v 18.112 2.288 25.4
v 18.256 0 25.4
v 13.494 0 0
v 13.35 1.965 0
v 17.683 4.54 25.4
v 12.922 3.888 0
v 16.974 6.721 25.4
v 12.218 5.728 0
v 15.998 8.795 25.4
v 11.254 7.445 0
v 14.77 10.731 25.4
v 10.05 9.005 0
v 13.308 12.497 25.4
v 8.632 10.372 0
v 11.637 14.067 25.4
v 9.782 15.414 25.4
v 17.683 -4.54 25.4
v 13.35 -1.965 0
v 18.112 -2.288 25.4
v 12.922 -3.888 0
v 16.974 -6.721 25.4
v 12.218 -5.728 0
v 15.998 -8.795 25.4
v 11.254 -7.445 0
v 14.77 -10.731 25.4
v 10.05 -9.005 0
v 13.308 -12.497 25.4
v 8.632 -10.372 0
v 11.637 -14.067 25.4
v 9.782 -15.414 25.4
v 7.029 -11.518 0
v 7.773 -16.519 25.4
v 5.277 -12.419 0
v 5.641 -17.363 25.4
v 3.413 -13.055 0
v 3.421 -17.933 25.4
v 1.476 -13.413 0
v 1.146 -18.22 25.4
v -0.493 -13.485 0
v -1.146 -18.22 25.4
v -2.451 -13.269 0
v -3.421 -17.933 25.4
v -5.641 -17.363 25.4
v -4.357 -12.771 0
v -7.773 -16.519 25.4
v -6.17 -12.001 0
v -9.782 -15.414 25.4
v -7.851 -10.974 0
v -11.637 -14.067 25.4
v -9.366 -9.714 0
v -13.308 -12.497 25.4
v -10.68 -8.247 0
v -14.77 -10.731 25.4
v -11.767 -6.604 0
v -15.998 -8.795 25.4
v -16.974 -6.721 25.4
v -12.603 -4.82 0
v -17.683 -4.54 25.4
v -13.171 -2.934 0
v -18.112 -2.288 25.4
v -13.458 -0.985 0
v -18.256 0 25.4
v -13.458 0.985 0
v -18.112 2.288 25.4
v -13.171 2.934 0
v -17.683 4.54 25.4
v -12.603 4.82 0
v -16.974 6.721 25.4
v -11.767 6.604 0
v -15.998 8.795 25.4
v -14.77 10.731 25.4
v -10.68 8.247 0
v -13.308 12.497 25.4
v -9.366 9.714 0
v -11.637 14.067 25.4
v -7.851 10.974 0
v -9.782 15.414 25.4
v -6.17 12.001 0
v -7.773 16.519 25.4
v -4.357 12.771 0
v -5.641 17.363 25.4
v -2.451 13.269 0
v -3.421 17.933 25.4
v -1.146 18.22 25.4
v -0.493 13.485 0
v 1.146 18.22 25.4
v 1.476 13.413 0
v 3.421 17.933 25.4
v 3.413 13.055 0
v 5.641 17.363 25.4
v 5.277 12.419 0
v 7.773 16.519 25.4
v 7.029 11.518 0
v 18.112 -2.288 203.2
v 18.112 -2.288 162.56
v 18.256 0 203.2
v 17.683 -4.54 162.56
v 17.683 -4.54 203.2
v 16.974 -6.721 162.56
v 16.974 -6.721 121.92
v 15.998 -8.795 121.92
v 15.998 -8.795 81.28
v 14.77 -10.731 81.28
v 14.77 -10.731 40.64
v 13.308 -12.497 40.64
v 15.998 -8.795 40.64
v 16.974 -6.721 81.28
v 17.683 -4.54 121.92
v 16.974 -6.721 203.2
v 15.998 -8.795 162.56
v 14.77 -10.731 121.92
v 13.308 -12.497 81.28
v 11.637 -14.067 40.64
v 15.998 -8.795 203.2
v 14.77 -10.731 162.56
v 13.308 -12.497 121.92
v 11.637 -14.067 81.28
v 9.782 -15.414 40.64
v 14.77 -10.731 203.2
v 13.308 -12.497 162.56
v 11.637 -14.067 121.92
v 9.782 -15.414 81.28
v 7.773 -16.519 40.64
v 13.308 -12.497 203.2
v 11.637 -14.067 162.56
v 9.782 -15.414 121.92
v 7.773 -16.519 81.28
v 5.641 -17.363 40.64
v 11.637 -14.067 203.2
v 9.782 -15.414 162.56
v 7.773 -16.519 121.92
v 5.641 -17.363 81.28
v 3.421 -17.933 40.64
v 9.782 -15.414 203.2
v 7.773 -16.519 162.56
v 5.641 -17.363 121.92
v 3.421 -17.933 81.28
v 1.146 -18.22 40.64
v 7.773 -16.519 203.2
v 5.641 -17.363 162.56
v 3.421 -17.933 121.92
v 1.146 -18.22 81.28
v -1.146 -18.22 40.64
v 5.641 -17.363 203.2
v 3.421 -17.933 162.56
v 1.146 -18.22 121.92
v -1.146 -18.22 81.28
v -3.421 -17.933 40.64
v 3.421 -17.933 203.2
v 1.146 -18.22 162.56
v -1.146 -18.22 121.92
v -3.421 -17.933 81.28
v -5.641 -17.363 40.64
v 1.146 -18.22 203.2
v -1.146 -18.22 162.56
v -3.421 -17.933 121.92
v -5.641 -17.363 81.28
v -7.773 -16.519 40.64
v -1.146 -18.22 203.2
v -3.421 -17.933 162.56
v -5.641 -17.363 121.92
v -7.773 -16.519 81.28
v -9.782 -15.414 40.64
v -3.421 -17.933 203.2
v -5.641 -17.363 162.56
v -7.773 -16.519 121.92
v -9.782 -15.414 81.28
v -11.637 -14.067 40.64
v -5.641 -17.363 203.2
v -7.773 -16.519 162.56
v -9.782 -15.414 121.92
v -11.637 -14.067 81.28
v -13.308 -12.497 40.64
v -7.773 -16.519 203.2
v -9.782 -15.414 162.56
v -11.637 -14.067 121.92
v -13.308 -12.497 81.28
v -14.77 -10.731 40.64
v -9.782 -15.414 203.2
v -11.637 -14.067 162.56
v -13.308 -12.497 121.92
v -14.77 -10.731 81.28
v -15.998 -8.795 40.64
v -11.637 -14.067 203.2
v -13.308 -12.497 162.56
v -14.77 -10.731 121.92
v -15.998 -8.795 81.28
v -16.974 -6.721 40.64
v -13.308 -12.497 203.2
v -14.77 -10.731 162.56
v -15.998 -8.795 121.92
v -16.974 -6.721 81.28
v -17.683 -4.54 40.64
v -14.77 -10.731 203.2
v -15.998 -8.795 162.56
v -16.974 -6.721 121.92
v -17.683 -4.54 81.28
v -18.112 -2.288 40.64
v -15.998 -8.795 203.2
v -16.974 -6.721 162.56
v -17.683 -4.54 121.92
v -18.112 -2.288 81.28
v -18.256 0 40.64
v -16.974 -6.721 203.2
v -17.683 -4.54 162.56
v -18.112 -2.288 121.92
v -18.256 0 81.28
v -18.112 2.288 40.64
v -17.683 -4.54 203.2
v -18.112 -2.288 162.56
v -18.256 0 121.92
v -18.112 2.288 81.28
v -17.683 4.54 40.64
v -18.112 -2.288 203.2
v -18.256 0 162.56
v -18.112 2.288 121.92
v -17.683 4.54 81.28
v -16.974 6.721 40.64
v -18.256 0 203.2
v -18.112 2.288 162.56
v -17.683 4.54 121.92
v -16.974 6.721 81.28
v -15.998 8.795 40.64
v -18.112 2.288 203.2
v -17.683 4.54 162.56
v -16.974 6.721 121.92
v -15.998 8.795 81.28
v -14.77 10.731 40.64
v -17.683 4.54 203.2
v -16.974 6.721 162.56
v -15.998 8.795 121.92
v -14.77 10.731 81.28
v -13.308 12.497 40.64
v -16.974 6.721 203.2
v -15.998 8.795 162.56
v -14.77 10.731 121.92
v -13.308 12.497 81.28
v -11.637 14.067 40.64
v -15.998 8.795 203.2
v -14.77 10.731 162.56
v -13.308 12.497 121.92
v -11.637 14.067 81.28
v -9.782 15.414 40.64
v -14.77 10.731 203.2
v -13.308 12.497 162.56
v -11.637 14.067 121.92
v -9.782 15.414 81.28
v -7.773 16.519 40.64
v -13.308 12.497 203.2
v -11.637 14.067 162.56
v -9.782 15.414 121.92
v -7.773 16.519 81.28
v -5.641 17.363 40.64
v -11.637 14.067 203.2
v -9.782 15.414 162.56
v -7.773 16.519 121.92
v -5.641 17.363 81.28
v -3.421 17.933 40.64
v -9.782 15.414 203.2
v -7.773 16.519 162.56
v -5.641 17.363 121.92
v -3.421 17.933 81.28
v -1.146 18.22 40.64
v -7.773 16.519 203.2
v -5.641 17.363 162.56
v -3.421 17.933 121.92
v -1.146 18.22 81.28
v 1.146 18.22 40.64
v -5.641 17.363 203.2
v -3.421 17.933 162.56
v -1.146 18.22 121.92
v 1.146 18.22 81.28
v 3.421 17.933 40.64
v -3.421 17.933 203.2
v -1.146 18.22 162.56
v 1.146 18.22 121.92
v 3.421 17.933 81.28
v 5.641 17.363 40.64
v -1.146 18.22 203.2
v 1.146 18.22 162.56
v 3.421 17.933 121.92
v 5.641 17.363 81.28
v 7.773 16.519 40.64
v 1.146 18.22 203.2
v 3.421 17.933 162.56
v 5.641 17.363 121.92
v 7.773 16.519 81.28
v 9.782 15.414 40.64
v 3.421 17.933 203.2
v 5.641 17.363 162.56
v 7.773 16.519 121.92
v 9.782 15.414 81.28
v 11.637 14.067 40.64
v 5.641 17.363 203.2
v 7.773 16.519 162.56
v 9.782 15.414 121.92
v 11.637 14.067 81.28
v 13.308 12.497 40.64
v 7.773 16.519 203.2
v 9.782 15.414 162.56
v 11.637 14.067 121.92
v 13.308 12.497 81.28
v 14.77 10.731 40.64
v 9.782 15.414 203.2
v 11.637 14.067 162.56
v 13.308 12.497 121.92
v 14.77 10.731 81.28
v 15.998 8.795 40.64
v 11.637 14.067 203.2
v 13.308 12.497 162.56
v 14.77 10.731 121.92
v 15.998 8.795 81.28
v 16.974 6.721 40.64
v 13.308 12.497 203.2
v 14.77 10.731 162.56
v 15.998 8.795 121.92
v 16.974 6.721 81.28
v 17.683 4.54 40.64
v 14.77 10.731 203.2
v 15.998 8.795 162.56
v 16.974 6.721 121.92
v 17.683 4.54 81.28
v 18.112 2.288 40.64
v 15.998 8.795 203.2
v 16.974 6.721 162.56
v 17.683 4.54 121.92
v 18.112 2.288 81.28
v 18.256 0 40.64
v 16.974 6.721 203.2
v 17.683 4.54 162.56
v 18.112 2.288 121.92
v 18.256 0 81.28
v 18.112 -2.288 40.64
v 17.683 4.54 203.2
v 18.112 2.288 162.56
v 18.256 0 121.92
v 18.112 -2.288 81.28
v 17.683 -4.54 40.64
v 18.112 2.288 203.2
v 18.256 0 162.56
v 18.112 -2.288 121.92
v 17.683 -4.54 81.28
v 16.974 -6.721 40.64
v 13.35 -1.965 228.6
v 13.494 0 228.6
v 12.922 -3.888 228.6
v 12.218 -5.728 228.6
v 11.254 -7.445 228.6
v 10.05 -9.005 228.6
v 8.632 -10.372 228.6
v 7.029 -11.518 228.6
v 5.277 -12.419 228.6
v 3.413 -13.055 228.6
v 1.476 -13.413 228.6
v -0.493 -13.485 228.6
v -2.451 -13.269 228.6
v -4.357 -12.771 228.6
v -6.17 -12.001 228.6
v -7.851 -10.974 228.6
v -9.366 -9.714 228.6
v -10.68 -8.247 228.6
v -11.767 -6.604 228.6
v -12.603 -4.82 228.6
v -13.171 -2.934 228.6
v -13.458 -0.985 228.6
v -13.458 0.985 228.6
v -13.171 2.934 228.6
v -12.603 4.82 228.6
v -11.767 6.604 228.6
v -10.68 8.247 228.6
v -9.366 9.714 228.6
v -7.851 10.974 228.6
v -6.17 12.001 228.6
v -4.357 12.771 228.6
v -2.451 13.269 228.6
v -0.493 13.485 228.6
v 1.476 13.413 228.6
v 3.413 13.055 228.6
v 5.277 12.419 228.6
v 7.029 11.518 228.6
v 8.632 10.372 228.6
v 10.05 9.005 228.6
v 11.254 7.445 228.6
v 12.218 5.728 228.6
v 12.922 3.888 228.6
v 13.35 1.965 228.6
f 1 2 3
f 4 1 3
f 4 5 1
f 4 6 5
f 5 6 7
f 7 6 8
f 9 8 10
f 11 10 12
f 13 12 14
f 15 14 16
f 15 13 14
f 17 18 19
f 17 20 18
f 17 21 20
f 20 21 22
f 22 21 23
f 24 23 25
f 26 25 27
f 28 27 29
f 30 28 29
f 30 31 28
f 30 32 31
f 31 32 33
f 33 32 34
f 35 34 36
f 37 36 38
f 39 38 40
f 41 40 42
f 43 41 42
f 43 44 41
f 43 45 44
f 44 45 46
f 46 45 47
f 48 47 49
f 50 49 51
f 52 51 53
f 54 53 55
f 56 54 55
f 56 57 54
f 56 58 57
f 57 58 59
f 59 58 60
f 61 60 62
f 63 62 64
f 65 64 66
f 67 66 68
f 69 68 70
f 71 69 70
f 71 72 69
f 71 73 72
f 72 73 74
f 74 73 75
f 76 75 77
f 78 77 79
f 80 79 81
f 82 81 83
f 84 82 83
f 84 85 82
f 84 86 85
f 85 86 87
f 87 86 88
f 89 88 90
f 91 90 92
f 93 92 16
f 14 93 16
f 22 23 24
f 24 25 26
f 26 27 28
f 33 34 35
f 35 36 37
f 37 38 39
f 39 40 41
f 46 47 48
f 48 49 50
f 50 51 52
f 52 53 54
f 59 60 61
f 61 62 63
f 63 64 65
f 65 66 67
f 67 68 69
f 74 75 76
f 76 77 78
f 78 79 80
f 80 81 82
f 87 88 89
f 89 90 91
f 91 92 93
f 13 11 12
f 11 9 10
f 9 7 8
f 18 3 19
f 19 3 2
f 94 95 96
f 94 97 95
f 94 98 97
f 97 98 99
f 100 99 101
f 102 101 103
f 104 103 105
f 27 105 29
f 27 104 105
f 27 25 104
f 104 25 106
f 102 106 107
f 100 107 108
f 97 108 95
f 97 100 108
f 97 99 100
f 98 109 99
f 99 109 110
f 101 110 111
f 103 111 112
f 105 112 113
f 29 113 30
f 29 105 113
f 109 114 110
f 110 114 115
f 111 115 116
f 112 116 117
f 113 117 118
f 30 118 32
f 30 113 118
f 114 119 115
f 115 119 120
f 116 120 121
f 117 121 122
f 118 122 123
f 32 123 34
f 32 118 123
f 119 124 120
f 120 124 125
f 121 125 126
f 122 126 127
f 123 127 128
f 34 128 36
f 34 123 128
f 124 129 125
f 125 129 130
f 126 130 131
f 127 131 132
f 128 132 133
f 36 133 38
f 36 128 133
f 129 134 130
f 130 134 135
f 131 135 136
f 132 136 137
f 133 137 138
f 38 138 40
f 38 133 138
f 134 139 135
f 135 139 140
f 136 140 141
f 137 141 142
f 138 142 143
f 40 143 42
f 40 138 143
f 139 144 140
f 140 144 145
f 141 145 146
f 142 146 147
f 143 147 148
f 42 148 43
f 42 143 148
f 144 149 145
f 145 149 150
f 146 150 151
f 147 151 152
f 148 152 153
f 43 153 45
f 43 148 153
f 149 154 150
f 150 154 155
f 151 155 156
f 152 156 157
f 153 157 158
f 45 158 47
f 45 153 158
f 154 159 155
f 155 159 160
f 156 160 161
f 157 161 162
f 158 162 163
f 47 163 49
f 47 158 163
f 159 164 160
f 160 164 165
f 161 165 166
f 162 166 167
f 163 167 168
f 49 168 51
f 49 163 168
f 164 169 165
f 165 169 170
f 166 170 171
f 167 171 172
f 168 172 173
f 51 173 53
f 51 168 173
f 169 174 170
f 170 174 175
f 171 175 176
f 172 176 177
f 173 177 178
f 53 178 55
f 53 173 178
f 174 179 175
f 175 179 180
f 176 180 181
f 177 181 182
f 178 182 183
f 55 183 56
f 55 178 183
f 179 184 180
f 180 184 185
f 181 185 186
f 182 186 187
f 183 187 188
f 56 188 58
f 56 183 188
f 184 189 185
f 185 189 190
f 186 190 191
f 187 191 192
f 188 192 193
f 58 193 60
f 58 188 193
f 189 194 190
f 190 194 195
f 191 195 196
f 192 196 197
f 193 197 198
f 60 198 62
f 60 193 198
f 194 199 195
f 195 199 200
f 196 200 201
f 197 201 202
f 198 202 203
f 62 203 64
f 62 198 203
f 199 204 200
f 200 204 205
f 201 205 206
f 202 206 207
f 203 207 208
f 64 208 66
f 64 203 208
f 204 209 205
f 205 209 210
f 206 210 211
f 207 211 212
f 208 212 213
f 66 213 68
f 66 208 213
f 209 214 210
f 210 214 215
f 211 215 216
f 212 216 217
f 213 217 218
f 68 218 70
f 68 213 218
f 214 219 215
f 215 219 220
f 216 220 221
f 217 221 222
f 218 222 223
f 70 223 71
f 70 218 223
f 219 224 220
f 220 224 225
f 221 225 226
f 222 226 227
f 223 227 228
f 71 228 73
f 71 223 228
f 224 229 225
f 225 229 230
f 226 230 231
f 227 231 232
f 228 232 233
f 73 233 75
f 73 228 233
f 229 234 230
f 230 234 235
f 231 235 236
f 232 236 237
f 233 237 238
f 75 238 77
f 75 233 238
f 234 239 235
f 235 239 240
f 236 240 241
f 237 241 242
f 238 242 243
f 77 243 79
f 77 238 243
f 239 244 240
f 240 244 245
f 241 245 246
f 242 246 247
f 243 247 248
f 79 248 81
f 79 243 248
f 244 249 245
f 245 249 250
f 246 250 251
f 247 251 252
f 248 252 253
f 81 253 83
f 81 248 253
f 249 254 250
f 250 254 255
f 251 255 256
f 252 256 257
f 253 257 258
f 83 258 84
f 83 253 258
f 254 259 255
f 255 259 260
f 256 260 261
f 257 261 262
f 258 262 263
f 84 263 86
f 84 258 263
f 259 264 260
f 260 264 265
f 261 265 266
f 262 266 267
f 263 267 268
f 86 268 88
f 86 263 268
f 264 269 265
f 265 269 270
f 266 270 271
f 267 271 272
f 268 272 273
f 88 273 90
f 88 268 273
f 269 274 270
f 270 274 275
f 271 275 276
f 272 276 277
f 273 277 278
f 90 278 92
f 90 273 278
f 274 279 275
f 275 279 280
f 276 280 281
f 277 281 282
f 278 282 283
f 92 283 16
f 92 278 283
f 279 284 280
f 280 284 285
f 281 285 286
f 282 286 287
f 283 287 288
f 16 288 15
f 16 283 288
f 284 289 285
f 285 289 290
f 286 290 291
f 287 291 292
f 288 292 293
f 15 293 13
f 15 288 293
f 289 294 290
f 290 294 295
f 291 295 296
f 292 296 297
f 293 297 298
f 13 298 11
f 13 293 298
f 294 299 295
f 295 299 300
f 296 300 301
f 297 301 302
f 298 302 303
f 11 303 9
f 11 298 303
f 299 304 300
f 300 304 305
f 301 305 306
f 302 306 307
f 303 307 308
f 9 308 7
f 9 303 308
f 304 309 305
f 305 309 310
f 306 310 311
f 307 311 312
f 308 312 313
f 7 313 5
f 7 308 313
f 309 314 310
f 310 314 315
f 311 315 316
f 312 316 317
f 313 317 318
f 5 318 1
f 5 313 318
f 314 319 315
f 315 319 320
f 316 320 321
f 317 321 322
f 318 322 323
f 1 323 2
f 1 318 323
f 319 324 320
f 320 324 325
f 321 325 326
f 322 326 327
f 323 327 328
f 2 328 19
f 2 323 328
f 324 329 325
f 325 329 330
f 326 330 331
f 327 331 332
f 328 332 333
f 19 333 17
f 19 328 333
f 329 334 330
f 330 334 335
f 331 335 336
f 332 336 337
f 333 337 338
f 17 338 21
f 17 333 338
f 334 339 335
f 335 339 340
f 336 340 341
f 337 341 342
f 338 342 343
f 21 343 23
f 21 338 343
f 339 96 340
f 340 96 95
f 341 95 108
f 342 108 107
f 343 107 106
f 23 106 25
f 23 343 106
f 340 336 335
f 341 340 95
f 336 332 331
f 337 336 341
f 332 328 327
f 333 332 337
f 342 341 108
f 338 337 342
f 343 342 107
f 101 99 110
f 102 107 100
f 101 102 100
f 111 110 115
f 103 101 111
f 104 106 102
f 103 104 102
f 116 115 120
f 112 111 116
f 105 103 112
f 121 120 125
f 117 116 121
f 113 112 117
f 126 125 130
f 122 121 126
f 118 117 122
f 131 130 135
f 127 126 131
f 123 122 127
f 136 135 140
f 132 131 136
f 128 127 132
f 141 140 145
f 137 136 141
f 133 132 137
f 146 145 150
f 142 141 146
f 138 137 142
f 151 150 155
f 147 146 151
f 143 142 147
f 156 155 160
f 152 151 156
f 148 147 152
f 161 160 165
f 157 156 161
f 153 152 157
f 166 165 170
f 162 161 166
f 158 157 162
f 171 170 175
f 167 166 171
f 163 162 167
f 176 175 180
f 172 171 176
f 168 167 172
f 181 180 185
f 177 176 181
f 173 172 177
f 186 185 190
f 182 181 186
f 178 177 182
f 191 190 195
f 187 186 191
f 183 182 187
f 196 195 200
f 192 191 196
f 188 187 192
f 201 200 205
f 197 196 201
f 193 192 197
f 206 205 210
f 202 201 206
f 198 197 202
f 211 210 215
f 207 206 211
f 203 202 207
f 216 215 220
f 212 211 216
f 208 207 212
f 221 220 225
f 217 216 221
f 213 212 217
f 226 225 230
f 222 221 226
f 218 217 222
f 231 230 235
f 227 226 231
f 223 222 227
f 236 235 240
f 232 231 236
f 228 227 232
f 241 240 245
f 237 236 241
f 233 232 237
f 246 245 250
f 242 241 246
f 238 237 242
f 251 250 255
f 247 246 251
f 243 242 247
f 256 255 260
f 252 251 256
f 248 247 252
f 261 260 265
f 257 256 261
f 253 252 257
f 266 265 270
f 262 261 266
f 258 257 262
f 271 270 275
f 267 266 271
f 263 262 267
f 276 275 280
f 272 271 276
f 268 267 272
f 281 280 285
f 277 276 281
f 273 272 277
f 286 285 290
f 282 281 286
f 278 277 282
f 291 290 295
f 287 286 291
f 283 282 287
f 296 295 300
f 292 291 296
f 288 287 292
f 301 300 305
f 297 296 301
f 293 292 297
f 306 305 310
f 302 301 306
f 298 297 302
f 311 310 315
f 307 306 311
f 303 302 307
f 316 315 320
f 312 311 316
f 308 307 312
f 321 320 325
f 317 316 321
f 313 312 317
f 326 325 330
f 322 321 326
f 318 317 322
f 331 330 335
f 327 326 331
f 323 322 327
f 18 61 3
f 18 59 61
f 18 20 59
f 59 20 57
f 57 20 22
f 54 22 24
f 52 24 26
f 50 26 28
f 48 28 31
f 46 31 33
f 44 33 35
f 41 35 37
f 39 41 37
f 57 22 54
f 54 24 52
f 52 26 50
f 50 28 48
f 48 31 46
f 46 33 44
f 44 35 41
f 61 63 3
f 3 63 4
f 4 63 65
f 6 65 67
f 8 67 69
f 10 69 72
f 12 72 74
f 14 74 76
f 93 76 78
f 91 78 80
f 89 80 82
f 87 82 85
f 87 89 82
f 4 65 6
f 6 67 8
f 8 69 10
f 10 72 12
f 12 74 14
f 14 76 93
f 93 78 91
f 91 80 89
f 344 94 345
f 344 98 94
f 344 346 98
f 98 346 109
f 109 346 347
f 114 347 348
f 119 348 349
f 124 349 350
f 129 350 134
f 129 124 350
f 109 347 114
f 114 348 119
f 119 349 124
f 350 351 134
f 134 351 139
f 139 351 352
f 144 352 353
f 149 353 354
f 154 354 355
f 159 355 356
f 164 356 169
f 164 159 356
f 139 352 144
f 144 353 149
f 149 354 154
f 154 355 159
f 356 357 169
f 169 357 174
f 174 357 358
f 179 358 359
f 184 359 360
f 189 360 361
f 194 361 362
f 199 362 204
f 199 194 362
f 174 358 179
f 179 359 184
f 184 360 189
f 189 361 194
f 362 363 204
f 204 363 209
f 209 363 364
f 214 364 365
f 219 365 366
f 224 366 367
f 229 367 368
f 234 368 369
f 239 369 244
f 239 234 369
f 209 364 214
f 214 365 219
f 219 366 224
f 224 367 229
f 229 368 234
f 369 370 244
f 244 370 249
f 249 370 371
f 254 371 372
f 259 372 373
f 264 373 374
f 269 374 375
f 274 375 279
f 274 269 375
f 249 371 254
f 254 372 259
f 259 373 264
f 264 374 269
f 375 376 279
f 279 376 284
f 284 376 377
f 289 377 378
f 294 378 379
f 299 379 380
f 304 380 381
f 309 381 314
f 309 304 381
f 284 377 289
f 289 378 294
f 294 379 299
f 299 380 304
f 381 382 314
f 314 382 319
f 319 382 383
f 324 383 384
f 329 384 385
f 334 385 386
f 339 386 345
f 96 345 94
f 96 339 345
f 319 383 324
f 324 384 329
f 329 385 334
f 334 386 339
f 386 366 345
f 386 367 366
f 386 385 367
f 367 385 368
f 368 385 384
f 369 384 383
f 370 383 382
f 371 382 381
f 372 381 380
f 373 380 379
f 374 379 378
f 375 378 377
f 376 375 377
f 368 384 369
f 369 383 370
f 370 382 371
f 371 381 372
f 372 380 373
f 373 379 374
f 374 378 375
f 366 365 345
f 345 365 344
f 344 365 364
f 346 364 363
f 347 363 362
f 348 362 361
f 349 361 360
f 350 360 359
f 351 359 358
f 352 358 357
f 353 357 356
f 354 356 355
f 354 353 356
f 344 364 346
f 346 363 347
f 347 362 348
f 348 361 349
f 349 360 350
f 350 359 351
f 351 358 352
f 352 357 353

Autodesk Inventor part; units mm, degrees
ref_plane "YZ Plane" through (0, 0, 0) normal (1, 0, 0) x (0, 1, 0)
ref_plane "XZ Plane" through (0, 0, 0) normal (0, 1, 0) x (-1, 0, 0)
ref_plane "XY Plane" through (0, 0, 0) normal (0, 0, 1) x (1, 0, 0)
sketch "Sketch1" plane through (0, 0, 0) normal (0, 0, 1) x (1, 0, 0)
  circle A0 centre (0, 0) radius 18.2563
  dimension "d0" = 36.5125
extrude "Extrusion1" add sketch "Sketch1" along normal blind 228.6
chamfer "Chamfer1" distance 25.4 distance2 4.7625 1 edges at (-18.2563, 0, 228.6) measured on face at (18.1971, -1.469, 152.4)
chamfer "Chamfer2" distance 25.4 distance2 4.7625 1 edges at (-18.2563, 0, 0) measured on face at (18.0198, -2.9285, 135.4667)
properties part number "GE-12027-02"
